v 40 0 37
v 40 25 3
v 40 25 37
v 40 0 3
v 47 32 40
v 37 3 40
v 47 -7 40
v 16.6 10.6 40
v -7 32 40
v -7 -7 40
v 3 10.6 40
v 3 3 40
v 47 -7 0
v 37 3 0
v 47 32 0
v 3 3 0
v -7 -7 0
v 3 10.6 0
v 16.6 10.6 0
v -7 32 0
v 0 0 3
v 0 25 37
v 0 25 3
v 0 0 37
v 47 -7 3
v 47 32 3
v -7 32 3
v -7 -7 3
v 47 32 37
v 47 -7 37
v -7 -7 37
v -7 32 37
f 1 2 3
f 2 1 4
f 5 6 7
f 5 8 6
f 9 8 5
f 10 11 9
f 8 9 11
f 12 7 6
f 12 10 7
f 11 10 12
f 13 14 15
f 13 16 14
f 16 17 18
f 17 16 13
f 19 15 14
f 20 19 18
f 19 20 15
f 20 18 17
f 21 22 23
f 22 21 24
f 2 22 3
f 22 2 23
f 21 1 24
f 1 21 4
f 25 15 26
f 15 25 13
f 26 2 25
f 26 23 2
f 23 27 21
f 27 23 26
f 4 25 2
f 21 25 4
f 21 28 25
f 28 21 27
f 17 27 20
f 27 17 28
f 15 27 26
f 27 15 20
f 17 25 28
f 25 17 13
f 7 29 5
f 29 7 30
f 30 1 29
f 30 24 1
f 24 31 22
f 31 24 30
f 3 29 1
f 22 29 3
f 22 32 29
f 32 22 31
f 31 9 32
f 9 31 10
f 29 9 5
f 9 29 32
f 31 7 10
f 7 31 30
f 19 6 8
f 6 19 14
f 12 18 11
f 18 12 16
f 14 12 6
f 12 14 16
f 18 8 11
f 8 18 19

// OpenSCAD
// Parameters
outer_width_top = 40;
outer_depth_top = 25;
outer_height = 40; // Increased height

flange_thickness = 3; // Thicker flanges
flange_extension = 7; // More extended flanges

wall_thickness = 3;

// Inner cavity dimensions (more tapered)
inner_width_top = outer_width_top - 2 * wall_thickness;
inner_depth_top = outer_depth_top - 2 * wall_thickness;
inner_width_bottom = inner_width_top * 0.4; // Increased taper
inner_depth_bottom = inner_depth_top * 0.4; // Increased taper
inner_height = outer_height;

// Main module
module tapered_hollow_block() {
    difference() {
        // Outer block with flanges
        union() {
            // Main body
            cube([outer_width_top, outer_depth_top, outer_height], center=false);

            // Top flange
            translate([-flange_extension, -flange_extension, 0])
                cube([outer_width_top + 2 * flange_extension, outer_depth_top + 2 * flange_extension, flange_thickness]);

            // Bottom flange
            translate([-flange_extension, -flange_extension, outer_height - flange_thickness])
                cube([outer_width_top + 2 * flange_extension, outer_depth_top + 2 * flange_extension, flange_thickness]);
        }

        // Inner tapered cavity
        translate([wall_thickness, wall_thickness, 0])
            linear_extrude(height=inner_height)
                polygon(points=[
                    [0, 0],
                    [inner_width_top, 0],
                    [inner_width_bottom, inner_depth_bottom],
                    [0, inner_depth_bottom]
                ]);
    }
}

// Render the model
tapered_hollow_block();
